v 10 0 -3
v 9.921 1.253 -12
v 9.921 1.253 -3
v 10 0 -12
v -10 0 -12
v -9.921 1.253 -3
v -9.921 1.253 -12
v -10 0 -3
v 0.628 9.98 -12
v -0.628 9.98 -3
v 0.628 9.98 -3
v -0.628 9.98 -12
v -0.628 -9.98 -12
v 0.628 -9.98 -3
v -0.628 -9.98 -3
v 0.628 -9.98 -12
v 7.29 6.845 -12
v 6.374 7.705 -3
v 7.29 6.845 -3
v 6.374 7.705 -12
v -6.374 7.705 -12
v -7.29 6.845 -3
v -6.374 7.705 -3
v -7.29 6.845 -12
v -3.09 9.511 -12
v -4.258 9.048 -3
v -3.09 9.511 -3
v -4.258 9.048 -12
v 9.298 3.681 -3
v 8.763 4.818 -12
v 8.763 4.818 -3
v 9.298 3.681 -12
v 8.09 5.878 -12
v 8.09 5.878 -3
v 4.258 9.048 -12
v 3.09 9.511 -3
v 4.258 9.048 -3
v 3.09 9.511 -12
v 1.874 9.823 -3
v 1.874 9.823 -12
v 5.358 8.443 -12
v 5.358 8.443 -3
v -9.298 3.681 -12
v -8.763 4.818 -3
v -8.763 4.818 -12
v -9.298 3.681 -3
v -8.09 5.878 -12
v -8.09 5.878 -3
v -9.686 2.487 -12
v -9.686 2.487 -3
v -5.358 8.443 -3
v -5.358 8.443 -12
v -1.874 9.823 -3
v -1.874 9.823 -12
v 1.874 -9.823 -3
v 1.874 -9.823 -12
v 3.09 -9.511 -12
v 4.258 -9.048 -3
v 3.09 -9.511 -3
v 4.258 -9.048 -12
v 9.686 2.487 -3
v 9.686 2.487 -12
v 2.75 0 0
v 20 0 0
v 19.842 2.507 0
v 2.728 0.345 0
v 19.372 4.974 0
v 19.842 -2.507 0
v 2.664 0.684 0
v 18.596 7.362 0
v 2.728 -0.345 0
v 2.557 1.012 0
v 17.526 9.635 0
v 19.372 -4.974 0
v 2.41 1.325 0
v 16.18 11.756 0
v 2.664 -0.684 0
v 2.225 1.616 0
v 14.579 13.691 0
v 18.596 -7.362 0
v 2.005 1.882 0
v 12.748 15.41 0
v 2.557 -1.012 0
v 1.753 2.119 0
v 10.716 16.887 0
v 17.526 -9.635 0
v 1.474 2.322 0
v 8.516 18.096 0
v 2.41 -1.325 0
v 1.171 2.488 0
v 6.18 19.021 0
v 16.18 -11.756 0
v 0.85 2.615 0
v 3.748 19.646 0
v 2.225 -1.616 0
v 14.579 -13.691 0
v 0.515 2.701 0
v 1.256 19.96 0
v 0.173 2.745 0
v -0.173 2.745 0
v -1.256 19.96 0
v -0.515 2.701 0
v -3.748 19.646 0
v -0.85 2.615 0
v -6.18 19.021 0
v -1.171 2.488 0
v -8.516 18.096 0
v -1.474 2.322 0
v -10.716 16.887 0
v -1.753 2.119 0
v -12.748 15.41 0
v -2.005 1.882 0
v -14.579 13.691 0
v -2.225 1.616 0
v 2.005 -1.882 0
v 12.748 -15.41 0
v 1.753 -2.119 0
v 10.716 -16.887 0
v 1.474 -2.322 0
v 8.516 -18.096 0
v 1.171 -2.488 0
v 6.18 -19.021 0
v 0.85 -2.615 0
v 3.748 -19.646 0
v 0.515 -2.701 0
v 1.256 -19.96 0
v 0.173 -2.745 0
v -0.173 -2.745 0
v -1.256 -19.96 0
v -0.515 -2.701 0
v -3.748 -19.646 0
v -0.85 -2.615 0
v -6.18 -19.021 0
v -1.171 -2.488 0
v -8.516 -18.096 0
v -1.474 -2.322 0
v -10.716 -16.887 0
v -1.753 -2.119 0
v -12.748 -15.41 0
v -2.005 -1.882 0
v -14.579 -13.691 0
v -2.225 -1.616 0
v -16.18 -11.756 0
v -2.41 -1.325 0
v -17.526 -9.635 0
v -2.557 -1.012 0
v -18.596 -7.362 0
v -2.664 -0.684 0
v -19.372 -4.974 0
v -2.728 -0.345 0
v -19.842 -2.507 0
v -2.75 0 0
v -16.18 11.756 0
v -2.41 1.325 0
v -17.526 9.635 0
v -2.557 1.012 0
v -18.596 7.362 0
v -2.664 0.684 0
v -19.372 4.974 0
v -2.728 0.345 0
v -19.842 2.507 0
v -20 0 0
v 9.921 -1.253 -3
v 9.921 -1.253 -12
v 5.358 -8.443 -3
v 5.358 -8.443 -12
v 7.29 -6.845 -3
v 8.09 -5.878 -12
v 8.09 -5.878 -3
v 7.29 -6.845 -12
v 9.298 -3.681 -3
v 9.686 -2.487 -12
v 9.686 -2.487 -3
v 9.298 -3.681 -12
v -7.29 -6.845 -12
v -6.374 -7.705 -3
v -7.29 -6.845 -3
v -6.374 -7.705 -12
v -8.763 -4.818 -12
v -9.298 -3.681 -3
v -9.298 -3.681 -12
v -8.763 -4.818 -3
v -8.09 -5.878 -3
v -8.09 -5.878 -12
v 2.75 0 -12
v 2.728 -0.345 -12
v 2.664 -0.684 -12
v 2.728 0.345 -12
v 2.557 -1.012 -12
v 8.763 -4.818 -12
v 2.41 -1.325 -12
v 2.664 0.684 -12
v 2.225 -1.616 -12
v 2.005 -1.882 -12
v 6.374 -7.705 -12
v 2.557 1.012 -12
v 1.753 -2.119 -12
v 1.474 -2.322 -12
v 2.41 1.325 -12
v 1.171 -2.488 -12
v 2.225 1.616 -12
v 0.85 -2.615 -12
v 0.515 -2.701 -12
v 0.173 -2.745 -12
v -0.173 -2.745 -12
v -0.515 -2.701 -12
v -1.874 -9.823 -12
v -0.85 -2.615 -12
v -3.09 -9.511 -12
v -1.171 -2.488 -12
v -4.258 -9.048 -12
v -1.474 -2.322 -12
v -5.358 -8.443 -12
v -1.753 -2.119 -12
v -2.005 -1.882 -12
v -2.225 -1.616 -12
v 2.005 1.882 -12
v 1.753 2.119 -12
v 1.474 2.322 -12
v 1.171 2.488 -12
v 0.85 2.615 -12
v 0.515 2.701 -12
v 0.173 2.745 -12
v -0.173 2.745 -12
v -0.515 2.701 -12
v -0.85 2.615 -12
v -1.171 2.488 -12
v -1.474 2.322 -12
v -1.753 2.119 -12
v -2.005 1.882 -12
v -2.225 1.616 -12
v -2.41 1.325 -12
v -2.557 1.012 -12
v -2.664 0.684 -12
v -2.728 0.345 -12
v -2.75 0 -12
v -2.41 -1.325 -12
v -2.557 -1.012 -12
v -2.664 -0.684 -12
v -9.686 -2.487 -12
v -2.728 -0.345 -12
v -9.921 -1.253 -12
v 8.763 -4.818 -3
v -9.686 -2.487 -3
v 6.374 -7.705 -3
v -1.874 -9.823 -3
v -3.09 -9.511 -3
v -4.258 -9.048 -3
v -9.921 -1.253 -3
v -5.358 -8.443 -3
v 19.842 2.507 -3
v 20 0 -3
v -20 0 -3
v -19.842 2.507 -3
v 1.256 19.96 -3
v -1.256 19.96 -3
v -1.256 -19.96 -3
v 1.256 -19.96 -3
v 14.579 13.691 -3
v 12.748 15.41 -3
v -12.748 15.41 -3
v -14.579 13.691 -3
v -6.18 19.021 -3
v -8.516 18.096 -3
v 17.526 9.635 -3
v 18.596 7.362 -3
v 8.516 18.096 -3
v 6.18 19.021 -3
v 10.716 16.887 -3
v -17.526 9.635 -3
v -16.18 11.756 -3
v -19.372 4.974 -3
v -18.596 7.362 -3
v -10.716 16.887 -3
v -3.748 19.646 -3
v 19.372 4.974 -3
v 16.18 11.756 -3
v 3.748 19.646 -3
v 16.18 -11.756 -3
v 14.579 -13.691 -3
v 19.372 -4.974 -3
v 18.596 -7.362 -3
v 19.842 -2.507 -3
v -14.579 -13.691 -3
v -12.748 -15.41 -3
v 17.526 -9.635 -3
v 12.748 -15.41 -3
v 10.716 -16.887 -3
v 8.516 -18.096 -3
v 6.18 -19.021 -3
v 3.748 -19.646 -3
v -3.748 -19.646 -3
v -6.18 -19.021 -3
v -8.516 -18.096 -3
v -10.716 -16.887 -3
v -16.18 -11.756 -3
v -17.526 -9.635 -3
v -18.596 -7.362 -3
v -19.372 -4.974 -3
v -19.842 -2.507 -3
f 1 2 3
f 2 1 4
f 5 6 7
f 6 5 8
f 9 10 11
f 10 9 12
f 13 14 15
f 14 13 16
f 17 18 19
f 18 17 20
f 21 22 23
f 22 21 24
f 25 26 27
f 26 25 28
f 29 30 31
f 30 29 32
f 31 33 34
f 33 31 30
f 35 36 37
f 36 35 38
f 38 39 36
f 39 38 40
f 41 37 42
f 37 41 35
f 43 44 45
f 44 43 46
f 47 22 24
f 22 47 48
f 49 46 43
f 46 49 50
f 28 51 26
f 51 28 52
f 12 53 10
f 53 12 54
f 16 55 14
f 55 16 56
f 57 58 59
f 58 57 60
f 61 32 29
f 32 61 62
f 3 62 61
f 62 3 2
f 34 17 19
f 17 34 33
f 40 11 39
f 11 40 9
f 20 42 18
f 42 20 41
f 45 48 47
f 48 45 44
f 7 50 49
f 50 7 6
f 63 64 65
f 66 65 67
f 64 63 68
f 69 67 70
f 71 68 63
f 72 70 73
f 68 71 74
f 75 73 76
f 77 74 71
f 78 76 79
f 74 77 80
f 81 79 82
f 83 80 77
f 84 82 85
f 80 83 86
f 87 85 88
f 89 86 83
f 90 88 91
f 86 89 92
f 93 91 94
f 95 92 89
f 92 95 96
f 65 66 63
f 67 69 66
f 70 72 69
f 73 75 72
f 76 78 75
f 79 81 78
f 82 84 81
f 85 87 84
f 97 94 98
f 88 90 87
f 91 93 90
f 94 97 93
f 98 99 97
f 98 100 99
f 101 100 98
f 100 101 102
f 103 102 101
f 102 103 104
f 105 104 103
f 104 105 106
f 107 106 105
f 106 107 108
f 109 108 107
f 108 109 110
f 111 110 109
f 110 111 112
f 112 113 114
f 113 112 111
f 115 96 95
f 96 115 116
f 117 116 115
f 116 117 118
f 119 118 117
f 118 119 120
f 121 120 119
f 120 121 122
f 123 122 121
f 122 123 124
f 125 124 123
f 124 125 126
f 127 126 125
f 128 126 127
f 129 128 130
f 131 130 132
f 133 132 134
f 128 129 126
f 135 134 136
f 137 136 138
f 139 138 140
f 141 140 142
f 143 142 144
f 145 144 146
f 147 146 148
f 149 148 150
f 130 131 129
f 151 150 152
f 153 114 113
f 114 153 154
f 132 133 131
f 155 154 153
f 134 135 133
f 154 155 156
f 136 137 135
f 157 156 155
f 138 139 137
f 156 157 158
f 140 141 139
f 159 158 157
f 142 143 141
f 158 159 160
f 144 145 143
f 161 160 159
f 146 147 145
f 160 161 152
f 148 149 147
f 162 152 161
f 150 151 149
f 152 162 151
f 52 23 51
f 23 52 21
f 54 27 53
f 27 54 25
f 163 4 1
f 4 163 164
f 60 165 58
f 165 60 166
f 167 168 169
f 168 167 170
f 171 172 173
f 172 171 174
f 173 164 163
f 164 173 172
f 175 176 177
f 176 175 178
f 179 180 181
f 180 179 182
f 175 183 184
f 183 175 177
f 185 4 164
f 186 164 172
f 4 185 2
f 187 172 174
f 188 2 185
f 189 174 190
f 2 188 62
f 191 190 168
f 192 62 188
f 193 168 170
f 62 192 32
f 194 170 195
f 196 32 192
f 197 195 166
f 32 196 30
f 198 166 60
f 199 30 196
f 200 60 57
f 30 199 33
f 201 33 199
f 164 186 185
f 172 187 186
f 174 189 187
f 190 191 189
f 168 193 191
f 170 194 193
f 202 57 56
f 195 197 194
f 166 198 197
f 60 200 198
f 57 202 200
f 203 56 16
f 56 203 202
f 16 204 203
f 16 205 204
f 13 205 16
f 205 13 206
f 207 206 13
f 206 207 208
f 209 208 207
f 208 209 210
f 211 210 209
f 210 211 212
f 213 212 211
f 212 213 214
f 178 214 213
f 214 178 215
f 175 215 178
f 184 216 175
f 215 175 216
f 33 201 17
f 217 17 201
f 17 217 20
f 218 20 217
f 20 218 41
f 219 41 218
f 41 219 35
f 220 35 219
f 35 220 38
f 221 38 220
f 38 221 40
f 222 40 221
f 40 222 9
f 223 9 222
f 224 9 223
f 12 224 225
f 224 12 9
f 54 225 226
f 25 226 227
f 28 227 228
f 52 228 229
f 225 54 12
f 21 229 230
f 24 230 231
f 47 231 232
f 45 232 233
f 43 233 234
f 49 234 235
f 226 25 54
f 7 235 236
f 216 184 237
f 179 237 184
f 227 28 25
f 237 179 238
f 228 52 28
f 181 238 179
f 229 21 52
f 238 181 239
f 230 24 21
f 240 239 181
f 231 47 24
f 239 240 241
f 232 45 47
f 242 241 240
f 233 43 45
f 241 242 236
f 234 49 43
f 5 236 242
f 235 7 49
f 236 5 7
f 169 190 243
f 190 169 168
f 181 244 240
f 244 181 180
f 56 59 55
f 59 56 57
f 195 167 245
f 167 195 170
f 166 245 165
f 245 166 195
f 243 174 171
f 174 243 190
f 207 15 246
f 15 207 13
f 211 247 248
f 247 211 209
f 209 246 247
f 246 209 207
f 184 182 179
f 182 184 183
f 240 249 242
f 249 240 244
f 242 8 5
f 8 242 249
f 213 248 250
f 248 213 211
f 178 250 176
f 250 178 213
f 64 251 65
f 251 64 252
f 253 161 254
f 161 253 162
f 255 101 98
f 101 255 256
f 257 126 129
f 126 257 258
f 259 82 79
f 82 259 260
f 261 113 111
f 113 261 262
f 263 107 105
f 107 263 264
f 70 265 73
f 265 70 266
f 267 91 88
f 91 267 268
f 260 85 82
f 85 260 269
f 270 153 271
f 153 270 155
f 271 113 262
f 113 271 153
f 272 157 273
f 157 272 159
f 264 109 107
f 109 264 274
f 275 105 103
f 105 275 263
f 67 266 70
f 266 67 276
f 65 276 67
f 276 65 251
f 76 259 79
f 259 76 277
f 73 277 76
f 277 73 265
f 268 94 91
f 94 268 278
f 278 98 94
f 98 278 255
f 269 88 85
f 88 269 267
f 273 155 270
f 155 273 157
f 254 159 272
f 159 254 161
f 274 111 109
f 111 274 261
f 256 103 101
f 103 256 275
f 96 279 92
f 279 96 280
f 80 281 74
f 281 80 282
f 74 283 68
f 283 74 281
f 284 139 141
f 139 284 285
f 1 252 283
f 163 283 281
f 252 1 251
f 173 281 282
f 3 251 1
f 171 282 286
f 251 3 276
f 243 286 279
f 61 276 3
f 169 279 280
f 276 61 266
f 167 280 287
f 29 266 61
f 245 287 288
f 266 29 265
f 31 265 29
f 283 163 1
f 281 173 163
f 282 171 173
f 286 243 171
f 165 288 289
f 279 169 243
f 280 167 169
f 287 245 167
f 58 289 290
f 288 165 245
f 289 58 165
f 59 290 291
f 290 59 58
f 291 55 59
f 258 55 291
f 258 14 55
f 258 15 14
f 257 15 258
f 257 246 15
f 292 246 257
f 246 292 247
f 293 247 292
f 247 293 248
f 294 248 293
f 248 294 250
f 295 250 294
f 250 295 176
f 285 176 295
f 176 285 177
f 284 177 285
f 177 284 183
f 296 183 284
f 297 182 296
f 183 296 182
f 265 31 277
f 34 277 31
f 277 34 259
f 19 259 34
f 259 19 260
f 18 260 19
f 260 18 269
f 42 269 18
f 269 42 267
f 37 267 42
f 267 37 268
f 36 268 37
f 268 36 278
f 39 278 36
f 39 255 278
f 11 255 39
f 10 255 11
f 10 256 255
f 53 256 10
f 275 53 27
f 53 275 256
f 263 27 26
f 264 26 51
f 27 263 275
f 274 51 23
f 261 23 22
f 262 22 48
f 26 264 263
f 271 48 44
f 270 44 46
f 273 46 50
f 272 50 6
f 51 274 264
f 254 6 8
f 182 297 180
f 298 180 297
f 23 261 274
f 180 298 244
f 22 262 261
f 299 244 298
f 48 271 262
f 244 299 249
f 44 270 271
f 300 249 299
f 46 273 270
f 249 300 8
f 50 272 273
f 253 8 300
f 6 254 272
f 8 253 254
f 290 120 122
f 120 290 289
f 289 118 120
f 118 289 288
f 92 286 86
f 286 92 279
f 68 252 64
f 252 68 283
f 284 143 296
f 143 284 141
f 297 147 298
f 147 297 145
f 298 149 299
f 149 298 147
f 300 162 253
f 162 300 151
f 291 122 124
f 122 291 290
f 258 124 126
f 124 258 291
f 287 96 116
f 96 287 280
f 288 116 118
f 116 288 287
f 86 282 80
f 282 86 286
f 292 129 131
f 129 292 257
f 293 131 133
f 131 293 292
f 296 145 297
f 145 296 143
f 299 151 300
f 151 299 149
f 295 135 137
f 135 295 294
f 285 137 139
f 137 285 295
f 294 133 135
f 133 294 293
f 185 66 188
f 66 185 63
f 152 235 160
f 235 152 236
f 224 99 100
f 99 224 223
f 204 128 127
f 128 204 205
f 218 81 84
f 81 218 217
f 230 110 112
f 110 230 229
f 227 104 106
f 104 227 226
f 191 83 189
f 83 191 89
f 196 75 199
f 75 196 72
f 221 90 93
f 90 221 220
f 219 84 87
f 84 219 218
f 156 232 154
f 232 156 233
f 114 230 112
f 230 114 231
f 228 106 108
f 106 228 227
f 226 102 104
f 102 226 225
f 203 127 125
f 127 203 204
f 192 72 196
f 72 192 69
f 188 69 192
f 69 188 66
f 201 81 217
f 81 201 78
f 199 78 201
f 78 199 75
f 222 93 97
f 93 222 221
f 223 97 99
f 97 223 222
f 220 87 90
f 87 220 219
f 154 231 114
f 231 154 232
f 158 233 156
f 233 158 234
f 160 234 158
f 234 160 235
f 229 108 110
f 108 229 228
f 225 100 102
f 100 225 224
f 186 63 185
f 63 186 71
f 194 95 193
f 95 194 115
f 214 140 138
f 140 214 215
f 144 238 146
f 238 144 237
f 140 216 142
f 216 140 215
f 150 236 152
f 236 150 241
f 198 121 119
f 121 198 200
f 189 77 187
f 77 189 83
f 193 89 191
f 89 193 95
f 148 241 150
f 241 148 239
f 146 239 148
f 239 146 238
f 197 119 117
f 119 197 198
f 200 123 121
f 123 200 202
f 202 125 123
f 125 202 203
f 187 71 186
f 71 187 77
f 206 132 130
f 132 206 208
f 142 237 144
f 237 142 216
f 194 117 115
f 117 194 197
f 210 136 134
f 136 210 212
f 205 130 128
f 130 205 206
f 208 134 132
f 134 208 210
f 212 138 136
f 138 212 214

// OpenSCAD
$fn = 50;


difference() {
	union() {
		translate(v = [0, 0, -12.0000000000]) {
			cylinder(h = 12, r = 10.0000000000);
		}
		translate(v = [0, 0, -3.0000000000]) {
			cylinder(h = 3, r = 20.0000000000);
		}
	}
	union() {
		#translate(v = [0, 0, -12]) {
			cylinder(h = 12, r = 2.7500000000);
		}
	}
}
